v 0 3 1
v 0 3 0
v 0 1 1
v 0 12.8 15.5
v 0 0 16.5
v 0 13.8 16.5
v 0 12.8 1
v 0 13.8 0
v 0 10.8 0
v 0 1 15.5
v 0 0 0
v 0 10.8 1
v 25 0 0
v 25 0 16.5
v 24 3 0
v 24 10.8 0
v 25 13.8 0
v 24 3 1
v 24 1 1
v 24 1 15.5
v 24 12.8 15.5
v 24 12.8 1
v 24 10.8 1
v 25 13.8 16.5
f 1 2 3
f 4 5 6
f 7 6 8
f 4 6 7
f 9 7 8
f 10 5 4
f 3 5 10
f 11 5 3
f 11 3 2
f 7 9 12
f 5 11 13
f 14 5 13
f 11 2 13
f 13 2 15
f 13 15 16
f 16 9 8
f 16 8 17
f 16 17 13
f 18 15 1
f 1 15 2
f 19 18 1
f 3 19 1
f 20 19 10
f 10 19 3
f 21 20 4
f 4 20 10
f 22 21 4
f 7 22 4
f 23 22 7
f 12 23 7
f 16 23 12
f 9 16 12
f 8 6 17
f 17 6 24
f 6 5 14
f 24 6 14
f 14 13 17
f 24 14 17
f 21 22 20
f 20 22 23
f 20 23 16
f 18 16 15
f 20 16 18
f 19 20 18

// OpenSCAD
thickness = 1;
prismHeight = 11.8;
prismWidth = 3;
prismDepth = 14.5;
mirrorSide = 25.7;
mirrorSideEdge = 4;
mirrorDepth = 2.5;
glassLength = 22;
difference() {
translate([0, 0, 0]) cube([prismWidth + glassLength, prismHeight + thickness * 2, prismDepth + thickness * 2]);
translate([0, thickness, thickness]) cube([prismWidth + glassLength - thickness, prismHeight, prismDepth]);
translate([0, thickness * 3, 0]) cube([prismWidth + glassLength - thickness, prismHeight - thickness * 4, prismDepth]);
}
